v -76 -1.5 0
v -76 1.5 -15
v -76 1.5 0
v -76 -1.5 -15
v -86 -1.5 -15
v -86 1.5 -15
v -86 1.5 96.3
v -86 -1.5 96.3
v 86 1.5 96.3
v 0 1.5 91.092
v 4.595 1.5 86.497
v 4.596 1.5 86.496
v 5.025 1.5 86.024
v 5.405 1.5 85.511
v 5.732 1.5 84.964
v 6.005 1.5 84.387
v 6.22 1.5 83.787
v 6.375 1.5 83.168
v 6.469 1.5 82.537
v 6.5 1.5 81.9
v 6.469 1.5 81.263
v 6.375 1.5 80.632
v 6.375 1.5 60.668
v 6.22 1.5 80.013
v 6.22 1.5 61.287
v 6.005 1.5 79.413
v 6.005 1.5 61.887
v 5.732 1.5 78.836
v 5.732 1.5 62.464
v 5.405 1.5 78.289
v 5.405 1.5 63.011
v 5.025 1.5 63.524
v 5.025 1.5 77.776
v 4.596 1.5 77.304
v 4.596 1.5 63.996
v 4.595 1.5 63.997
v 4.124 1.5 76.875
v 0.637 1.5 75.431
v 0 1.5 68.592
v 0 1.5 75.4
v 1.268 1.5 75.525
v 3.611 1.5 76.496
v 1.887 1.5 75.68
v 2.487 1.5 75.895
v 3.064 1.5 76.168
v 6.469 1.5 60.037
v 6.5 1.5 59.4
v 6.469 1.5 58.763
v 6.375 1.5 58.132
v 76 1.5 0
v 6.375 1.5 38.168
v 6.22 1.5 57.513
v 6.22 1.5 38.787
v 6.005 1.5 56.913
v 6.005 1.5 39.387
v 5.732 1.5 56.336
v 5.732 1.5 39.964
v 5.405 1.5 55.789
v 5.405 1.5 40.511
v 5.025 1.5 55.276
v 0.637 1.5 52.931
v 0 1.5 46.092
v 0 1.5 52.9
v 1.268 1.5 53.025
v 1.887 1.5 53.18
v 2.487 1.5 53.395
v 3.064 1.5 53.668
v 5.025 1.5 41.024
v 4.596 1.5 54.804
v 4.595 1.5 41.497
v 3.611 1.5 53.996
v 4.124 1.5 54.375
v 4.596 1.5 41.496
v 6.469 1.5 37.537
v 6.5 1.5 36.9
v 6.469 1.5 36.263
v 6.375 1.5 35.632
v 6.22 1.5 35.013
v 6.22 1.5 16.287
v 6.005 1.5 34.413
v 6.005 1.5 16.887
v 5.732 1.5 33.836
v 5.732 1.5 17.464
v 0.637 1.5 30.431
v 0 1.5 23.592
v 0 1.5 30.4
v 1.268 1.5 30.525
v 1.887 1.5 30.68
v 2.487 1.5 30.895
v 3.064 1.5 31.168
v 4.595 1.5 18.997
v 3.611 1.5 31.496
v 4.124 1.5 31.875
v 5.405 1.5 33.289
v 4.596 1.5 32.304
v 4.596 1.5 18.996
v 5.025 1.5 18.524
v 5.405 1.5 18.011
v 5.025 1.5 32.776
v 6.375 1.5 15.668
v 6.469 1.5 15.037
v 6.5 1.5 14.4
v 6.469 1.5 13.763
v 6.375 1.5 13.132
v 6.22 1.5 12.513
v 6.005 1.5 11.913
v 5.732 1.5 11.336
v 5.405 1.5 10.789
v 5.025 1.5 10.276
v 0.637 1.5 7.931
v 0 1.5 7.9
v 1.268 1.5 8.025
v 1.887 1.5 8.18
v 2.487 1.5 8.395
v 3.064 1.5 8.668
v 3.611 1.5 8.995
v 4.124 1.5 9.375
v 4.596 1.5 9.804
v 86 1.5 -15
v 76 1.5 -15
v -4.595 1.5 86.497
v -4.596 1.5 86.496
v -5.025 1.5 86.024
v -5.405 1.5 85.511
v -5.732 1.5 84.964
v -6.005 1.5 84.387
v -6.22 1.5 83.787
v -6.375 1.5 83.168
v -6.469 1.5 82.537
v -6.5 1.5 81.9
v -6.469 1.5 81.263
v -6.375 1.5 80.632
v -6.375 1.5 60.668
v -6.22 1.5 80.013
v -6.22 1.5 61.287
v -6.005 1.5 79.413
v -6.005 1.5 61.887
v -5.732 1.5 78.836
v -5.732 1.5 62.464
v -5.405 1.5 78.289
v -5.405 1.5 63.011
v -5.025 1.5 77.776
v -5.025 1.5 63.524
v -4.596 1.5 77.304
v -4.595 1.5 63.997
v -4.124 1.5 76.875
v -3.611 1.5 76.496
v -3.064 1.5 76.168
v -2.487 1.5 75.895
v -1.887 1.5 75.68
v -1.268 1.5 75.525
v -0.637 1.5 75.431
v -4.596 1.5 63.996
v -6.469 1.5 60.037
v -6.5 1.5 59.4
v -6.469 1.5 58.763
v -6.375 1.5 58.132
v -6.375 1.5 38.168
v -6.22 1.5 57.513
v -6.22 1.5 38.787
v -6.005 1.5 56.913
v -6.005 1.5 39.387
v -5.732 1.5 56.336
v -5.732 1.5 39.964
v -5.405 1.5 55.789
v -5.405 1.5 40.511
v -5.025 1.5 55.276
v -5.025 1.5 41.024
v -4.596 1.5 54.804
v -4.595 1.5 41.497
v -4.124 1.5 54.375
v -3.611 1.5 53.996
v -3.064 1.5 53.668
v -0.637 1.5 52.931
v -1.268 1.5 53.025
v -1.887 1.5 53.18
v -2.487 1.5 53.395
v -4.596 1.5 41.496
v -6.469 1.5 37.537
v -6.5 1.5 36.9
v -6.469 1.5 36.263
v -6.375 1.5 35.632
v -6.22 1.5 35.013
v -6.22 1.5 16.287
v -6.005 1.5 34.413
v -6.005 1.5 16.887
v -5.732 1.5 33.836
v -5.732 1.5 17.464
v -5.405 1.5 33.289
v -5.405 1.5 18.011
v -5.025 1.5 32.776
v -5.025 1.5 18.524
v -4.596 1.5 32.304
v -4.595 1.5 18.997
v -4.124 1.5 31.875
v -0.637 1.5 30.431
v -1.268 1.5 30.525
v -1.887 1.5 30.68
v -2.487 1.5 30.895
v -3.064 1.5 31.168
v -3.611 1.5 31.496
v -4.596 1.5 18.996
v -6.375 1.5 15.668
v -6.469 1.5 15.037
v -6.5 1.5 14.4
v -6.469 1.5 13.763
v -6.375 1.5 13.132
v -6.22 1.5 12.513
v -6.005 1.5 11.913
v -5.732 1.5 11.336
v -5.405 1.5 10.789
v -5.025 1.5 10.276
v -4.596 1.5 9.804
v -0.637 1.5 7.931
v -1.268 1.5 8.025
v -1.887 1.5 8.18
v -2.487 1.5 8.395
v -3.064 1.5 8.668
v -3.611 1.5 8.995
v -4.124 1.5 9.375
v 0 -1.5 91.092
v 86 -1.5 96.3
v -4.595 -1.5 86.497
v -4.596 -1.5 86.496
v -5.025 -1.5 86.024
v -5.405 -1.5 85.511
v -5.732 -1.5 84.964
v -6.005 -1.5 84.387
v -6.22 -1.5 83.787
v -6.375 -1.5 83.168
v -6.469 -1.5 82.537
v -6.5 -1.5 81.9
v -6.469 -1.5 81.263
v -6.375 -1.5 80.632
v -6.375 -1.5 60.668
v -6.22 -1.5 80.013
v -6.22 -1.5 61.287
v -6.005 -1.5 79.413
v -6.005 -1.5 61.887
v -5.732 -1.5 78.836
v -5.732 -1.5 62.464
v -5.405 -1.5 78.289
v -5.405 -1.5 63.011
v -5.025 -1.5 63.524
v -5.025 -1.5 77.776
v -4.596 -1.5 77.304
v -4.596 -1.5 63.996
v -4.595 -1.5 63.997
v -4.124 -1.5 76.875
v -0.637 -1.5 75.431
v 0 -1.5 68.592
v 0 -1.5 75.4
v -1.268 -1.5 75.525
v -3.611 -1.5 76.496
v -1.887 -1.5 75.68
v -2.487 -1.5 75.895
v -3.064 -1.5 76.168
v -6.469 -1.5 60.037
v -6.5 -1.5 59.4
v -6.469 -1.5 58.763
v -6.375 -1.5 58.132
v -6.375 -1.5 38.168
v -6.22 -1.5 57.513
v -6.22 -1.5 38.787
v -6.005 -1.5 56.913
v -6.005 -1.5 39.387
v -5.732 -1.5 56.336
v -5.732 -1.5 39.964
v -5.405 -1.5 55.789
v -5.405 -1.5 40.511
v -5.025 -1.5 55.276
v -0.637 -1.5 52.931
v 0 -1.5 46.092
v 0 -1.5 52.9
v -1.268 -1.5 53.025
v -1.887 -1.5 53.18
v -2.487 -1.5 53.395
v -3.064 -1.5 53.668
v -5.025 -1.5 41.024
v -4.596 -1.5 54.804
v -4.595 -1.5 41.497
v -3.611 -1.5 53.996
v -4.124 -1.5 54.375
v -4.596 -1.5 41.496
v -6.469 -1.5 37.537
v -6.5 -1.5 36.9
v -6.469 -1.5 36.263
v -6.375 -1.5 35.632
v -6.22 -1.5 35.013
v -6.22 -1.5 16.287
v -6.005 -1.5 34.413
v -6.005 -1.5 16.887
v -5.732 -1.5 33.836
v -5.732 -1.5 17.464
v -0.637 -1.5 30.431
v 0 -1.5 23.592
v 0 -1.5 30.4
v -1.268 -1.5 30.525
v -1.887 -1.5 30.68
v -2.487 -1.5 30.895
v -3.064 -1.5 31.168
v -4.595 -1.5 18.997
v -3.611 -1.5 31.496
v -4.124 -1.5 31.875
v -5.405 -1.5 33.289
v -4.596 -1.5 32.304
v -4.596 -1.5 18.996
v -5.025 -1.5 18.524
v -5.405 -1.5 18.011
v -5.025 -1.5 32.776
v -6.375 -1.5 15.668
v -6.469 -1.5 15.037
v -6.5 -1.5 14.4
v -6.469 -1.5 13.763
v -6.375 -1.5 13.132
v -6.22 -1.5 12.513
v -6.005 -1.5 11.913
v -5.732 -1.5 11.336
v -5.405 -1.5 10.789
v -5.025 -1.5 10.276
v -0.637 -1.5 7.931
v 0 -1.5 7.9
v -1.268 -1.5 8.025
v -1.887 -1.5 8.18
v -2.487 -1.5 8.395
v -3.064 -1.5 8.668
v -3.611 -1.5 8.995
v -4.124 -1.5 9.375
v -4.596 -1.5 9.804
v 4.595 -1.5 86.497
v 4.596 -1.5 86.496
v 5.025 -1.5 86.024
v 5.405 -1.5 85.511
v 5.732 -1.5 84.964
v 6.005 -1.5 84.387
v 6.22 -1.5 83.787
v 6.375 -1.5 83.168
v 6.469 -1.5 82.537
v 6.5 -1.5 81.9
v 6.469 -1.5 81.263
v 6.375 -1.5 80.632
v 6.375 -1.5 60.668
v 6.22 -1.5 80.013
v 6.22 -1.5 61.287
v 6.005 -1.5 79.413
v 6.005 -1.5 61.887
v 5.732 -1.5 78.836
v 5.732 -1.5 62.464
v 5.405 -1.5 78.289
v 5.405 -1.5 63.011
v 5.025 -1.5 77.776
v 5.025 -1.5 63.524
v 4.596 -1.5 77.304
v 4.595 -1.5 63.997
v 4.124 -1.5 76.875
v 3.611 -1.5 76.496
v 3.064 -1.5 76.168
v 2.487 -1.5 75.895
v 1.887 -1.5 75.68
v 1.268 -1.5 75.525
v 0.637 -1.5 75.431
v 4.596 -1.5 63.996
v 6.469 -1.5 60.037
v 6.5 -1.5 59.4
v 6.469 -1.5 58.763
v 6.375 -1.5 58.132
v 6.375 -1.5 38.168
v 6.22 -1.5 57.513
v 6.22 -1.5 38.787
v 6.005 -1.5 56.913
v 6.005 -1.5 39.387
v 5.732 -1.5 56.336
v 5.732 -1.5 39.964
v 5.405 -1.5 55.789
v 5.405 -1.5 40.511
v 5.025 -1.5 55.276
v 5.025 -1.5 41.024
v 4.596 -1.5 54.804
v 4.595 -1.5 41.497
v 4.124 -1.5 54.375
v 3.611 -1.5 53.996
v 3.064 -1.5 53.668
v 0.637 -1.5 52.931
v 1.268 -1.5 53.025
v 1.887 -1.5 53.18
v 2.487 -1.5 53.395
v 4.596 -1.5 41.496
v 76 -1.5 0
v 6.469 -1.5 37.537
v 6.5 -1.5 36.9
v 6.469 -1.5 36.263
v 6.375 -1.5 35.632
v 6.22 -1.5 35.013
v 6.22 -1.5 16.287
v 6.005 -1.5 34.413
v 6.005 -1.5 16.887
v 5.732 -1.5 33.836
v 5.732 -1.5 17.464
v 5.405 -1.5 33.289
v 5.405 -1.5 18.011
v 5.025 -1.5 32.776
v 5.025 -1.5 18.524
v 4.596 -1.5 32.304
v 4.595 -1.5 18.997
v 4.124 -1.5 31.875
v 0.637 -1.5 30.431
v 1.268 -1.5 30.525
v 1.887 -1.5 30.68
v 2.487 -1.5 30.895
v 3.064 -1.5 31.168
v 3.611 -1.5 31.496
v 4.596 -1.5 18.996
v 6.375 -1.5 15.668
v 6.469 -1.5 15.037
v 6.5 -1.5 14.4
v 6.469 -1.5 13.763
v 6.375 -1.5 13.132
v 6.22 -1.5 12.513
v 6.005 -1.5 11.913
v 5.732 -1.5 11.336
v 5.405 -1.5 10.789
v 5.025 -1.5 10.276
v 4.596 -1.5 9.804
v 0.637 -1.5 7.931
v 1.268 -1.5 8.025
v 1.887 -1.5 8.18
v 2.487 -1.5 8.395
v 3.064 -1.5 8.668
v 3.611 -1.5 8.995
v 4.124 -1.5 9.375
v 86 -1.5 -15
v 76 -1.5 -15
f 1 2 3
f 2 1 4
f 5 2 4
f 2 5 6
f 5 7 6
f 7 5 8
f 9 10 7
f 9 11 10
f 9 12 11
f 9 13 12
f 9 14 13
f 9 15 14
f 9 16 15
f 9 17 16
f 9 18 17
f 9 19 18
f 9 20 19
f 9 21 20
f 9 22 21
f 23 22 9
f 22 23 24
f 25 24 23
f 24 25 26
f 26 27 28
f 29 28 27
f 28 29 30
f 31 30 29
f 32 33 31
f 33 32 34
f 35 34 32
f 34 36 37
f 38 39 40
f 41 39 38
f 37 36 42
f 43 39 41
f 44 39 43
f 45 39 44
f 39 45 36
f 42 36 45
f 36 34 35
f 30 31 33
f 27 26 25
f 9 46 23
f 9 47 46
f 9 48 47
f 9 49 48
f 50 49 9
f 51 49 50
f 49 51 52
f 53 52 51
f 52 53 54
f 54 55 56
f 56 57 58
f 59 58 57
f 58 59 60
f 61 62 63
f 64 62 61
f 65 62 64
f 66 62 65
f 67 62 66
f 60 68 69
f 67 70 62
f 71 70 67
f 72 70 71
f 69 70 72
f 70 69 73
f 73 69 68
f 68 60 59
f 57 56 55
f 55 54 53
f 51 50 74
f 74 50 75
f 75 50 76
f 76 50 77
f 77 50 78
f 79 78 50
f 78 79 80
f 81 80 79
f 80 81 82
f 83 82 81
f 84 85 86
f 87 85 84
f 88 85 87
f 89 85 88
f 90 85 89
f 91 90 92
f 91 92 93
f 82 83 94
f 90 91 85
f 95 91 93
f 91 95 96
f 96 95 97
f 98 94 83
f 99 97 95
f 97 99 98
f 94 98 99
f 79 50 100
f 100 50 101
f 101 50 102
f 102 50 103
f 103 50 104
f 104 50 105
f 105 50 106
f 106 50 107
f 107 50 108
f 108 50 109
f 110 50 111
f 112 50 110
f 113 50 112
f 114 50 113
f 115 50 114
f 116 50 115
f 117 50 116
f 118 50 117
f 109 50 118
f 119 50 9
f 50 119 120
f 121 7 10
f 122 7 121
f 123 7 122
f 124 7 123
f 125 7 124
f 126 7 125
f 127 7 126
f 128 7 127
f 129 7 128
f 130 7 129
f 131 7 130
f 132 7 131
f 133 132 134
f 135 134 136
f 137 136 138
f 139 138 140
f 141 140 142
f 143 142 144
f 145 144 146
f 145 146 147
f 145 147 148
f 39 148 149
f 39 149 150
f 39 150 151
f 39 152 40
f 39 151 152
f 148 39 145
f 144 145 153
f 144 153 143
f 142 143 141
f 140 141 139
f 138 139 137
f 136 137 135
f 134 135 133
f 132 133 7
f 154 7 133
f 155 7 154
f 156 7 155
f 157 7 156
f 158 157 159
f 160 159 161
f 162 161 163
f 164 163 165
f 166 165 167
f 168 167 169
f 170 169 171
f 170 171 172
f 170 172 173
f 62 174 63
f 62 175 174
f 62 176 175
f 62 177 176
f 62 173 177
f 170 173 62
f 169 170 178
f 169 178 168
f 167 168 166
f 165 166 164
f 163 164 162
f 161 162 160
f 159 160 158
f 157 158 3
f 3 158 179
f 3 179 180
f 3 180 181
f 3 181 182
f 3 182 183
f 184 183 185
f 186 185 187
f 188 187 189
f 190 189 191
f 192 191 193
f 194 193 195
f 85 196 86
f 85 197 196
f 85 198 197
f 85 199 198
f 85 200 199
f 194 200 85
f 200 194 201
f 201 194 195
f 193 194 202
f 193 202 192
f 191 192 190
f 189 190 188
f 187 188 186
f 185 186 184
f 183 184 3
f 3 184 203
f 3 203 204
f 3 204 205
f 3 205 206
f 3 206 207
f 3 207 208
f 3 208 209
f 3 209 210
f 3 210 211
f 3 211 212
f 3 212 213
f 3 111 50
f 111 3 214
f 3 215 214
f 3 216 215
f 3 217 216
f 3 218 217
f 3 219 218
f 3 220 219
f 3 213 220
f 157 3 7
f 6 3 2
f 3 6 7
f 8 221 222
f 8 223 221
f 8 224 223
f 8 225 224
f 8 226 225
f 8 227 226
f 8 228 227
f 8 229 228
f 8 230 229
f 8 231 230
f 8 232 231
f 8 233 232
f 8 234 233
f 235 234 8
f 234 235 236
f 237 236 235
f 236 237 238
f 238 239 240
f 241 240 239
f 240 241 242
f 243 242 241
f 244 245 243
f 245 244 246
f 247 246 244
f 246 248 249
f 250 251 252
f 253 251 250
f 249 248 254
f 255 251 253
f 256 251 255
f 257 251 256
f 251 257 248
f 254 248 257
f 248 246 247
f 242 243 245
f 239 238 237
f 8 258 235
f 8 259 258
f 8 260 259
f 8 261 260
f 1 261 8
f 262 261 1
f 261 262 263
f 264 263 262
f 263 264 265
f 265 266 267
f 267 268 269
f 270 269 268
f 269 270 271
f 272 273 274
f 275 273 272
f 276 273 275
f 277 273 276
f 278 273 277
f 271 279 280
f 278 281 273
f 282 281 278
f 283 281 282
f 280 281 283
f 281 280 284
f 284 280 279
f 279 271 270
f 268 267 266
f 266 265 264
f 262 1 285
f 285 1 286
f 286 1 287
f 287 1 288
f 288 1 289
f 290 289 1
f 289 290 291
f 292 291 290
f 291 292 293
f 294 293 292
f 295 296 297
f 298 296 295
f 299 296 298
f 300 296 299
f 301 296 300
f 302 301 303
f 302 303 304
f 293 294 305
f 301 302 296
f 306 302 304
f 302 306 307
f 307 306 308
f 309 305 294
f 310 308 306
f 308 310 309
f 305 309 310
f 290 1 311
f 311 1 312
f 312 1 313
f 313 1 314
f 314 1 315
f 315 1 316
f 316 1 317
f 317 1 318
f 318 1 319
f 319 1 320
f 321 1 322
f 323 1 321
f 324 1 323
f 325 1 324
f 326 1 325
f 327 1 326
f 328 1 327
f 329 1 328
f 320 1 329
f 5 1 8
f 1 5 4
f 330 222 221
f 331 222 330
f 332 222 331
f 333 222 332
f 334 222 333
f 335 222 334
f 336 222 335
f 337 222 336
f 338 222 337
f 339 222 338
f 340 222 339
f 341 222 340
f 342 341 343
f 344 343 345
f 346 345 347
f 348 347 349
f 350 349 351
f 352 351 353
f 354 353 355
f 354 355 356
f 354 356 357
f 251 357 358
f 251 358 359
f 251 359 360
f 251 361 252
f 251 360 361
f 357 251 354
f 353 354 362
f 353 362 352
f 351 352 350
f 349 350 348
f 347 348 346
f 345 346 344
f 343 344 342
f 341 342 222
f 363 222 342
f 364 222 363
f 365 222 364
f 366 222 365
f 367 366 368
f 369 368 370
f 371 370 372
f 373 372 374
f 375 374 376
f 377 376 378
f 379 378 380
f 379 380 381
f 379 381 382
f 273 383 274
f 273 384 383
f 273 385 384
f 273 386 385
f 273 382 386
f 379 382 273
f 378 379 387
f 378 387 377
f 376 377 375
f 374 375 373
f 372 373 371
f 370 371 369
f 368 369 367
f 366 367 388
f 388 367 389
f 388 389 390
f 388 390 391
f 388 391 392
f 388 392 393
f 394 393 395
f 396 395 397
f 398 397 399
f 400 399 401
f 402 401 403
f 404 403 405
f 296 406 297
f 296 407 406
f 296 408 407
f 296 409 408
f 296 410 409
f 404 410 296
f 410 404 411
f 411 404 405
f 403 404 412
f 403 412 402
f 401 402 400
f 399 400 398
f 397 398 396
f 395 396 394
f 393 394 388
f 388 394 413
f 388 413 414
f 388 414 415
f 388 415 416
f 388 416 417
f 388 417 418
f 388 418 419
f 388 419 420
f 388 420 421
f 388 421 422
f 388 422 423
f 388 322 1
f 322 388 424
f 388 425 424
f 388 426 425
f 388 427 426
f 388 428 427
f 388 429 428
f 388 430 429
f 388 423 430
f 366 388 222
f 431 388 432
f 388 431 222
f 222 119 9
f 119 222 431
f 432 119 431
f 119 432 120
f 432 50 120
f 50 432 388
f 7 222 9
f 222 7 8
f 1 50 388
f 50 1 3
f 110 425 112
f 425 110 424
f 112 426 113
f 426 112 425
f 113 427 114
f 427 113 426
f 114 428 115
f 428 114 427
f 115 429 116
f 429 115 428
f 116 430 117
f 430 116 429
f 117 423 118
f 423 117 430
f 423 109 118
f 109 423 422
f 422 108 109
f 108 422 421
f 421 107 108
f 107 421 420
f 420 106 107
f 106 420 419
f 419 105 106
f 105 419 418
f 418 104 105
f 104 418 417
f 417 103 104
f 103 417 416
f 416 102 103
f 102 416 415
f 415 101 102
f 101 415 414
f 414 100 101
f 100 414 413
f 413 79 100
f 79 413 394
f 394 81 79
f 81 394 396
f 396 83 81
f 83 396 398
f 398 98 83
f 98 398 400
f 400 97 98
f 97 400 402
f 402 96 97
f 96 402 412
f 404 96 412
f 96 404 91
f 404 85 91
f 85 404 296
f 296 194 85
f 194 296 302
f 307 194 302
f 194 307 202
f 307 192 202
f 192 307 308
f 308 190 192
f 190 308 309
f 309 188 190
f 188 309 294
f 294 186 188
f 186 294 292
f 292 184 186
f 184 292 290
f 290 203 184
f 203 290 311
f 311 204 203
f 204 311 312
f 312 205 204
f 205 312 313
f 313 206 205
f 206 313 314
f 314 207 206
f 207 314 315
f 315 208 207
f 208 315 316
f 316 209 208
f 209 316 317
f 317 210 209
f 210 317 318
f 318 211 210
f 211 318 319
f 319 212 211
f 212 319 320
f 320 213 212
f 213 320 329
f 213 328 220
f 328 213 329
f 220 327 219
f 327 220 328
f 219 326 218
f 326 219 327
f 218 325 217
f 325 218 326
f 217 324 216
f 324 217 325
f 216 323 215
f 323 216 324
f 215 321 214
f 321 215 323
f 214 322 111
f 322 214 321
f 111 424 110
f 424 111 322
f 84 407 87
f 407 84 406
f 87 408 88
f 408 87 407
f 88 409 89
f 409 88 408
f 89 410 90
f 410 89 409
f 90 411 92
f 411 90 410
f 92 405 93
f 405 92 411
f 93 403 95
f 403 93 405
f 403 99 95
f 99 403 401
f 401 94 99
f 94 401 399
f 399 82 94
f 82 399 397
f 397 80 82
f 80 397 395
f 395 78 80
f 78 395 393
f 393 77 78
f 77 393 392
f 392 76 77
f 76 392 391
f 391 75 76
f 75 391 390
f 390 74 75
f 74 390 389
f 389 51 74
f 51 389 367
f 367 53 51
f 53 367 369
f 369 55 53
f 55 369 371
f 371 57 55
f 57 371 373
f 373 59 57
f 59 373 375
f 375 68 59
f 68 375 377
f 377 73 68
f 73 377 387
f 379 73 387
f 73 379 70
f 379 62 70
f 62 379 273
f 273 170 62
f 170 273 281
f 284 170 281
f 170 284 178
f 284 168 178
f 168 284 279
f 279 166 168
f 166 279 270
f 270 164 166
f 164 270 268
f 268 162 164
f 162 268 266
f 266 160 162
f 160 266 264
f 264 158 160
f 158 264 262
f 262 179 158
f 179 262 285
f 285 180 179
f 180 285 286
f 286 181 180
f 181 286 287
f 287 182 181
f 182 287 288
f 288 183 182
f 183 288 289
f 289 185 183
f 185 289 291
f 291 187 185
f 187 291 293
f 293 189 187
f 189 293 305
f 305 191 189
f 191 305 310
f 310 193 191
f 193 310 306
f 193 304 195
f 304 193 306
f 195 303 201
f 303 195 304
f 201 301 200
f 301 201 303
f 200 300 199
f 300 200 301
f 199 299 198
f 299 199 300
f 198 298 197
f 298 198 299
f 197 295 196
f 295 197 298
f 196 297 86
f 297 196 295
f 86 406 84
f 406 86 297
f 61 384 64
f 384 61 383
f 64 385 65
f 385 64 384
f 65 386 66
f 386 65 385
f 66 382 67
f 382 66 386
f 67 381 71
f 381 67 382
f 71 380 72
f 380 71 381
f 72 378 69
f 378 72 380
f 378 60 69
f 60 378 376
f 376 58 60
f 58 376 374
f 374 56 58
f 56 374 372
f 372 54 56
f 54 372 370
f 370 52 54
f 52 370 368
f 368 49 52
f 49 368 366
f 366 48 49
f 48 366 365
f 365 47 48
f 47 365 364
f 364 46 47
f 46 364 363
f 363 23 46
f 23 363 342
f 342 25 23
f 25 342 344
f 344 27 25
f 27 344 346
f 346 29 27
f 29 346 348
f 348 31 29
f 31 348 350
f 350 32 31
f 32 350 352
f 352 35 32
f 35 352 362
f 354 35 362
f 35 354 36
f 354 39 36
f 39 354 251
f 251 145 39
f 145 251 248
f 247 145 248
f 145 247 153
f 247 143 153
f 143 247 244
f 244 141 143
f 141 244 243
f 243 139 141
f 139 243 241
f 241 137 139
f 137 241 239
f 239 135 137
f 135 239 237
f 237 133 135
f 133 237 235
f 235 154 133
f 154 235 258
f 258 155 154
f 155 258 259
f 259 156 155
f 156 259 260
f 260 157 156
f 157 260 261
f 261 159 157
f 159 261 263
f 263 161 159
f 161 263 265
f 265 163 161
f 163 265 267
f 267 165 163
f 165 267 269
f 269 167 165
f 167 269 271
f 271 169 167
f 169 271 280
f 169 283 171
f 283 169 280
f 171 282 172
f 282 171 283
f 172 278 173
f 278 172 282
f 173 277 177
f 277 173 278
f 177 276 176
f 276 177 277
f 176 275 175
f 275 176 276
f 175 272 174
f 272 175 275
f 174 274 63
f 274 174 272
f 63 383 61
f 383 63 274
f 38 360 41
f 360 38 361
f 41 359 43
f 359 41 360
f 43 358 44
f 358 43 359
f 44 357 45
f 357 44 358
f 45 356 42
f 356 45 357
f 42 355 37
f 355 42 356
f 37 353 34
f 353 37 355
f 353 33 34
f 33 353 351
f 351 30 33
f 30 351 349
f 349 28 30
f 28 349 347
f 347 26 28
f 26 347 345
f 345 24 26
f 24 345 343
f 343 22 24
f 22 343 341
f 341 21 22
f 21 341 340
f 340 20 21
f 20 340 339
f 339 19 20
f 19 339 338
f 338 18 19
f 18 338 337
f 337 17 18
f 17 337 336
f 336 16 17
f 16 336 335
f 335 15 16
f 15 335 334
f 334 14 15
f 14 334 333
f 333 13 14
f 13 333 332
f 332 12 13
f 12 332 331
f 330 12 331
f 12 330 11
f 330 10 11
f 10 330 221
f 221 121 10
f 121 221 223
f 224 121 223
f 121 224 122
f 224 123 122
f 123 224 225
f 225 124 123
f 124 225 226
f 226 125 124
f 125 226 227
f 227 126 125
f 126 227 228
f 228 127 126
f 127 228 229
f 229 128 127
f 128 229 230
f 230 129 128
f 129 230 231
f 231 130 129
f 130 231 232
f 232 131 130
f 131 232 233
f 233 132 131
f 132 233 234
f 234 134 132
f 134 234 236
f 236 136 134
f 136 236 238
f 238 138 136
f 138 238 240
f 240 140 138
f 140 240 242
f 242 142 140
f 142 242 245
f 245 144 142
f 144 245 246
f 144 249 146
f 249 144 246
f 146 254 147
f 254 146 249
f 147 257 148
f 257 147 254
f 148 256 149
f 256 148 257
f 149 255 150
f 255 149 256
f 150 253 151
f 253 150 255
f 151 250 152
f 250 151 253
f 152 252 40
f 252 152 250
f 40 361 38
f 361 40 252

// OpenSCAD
// file: common.scad
// ============================================================
// common.scad — shared parameters + modules for all designs
// LOCKED PEN SPECIFICATION (do not change)
// ============================================================
PEN_L = 165;      // pen length (mm)
PEN_A = 17;       // pen cross-section minor
PEN_B = 20;       // pen cross-section major (used as diameter envelope)
CLEAR = 0.4;      // fit clearance
WALL  = 1.6;      // minimum wall thickness

$fn = 64;

RCH = PEN_B/2 + CLEAR;   // = 10.4  channel radius
EPS = 0.01;

// --- open-top U trough cut, axis along X, centered at local origin -----------
// Removes a lower half-cylinder of radius r plus a full-width vertical slot
// upward, so the channel is open at the top (no ceiling -> no overhang).
module trough_cut(len, r=RCH, top=80) {
    union() {
        rotate([0,90,0]) cylinder(h=len, r=r, center=true);
        translate([0,0,top/2]) cube([len, 2*r, top], center=true); // slot upward
    }
}

// --- teardrop hole, axis along X, centered at local origin --------------------
// 45-degree self-supporting apex pointing +Z so a horizontal bore can print
// without support.
module teardrop_cut(len, r=RCH) {
    rotate([0,90,0])
        linear_extrude(height=len, center=true)
            union() {
                circle(r=r);
                polygon([[ 0.7071*r, 0.7071*r],
                         [ 0,         1.4142*r],
                         [-0.7071*r,  0.7071*r]]);
            }
}

// --- dial relief: widened open-top pocket at one channel end -----------------
// place at the +X or -X end of a channel so the dose dial clears / can be turned
module dial_relief(end_x, r=RCH+2.2, len=28, top=80) {
    translate([end_x, 0, 0]) trough_cut(len, r, top);
}
// file: gate_lib.scad
// gate_lib.scad — two-part front-removable rack: open cradle BODY + lift-off GATE
// The body is a reclined ramp with open grooves; pens pull straight out the
// front. A slim gate drops into a catch at each end and spans the front, blocking
// the pens until you lift it off. Everything is a loose/positive fit -> nothing
// tolerance-critical, no snap, no test print.
include <common.scad>

LBLK = PEN_L + 7;     // 172 body length
GTH  = 3.0;           // gate thickness
GCL  = 0.6;           // generous clearance for the gate-to-catch fit
TABW = 10;            // gate end-tab width (along X)

// ---- shared layout ---------------------------------------------------------
function _yc(n,P,phi,i) = (-(n-1)/2 + i) * P * cos(phi);
function _zc(n,P,phi,i) = (WALL + RCH) + i * P * sin(phi);
function _ymn(n,P,phi)  = _yc(n,P,phi,0)   - RCH - WALL;
function _ymx(n,P,phi)  = _yc(n,P,phi,n-1) + RCH + WALL;
function _Hb(n,P,phi)   = _zc(n,P,phi,n-1) + RCH + 10;
// up-slope length of the ramp face (gate height when printed standing)
function _faceL(n,P)    = (n-1)*P + 2*RCH + 8;

// 2D teardrop (45deg apex toward +Y) for self-supporting windows
module _td2d(r) {
    union() {
        circle(r=r);
        polygon([[0.7071*r,0.7071*r],[0,1.4142*r],[-0.7071*r,0.7071*r]]);
    }
}

// ===================== BODY (prints in this orientation) ====================
module body(n=4, phi=52, P=22.5, lip=2.0, rr=RCH+2, rlen=34) {
    cph=cos(phi); sph=sin(phi);
    yc=[for(i=[0:n-1]) _yc(n,P,phi,i)];
    zc=[for(i=[0:n-1]) _zc(n,P,phi,i)];
    ymn=_ymn(n,P,phi); ymx=_ymx(n,P,phi);
    Wb=ymx-ymn; ycen=(ymx+ymn)/2; Hb=_Hb(n,P,phi);
    relief_cx=LBLK/2-12; big=800;
    cxtab = LBLK/2 - TABW/2;     // catch sits just inside each end

    difference() {
        union() {
            // sheared wedge
            difference() {
                translate([0,ycen,Hb/2]) cube([LBLK,Wb,Hb],center=true);
                translate([0,yc[0],zc[0]+lip]) rotate([phi,0,0])
                    translate([0,0,big/2]) cube([LBLK+2,big,big],center=true);
            }
            // two end CATCHES: posts at the front-bottom corners with an
            // up-slope-open pocket the gate end-tab drops into
            for (sx=[-1,1])
                translate([sx*cxtab, ymn - GTH - GCL, 0])
                    catch_post(phi);
        }
        // open grooves (pen pulls out the front) + dial relief
        for (i=[0:n-1]) {
            translate([0,yc[i],zc[i]]) rotate([0,90,0]) cylinder(h=LBLK+2,r=RCH,center=true);
            translate([relief_cx,yc[i],zc[i]]) rotate([0,90,0]) cylinder(h=rlen,r=rr,center=true);
        }
        // pocket inside each catch (the slot the gate tab sits in)
        for (sx=[-1,1])
            translate([sx*cxtab, ymn - GTH/2, 0])
                catch_slot();
    }
}

module catch_post(phi) {
    // a small block in front of the ramp toe, tall enough to hold the gate
    translate([0,0,18/2]) cube([TABW, GTH+2, 18], center=true);
}
module catch_slot() {
    // open-topped slot the gate end-tab drops into (loose fit)
    translate([0,0,30]) cube([TABW+2*GCL, GTH+2*GCL, 60], center=true);
}

// ===================== GATE (authored STANDING for printing) ================
// Printed as a thin upright wall: X = length, Z = ramp-face height, Y = thickness
module gate(n=4, phi=52, P=22.5, rwin=6.5) {
    faceL=_faceL(n,P);
    difference() {
        union() {
            // main panel
            translate([0,0,faceL/2]) cube([LBLK, GTH, faceL], center=true);
            // two end tabs that drop into the body catches (extend below panel)
            for (sx=[-1,1])
                translate([sx*(LBLK/2 - TABW/2), 0, -7])
                    cube([TABW, GTH, 16], center=true);
        }
        // grab windows aligned to each pen's up-slope position
        for (i=[0:n-1])
            translate([0, 0, RCH + 4 + i*P])
                rotate([90,0,0]) linear_extrude(height=GTH+2, center=true) _td2d(rwin);
    }
}
// main file
// HERO gate — lift-off front retainer (printed standing). Drops into the body's
// end catches and blocks the pens until lifted off.
include <gate_lib.scad>
gate(n=4, phi=62, P=22.5);
